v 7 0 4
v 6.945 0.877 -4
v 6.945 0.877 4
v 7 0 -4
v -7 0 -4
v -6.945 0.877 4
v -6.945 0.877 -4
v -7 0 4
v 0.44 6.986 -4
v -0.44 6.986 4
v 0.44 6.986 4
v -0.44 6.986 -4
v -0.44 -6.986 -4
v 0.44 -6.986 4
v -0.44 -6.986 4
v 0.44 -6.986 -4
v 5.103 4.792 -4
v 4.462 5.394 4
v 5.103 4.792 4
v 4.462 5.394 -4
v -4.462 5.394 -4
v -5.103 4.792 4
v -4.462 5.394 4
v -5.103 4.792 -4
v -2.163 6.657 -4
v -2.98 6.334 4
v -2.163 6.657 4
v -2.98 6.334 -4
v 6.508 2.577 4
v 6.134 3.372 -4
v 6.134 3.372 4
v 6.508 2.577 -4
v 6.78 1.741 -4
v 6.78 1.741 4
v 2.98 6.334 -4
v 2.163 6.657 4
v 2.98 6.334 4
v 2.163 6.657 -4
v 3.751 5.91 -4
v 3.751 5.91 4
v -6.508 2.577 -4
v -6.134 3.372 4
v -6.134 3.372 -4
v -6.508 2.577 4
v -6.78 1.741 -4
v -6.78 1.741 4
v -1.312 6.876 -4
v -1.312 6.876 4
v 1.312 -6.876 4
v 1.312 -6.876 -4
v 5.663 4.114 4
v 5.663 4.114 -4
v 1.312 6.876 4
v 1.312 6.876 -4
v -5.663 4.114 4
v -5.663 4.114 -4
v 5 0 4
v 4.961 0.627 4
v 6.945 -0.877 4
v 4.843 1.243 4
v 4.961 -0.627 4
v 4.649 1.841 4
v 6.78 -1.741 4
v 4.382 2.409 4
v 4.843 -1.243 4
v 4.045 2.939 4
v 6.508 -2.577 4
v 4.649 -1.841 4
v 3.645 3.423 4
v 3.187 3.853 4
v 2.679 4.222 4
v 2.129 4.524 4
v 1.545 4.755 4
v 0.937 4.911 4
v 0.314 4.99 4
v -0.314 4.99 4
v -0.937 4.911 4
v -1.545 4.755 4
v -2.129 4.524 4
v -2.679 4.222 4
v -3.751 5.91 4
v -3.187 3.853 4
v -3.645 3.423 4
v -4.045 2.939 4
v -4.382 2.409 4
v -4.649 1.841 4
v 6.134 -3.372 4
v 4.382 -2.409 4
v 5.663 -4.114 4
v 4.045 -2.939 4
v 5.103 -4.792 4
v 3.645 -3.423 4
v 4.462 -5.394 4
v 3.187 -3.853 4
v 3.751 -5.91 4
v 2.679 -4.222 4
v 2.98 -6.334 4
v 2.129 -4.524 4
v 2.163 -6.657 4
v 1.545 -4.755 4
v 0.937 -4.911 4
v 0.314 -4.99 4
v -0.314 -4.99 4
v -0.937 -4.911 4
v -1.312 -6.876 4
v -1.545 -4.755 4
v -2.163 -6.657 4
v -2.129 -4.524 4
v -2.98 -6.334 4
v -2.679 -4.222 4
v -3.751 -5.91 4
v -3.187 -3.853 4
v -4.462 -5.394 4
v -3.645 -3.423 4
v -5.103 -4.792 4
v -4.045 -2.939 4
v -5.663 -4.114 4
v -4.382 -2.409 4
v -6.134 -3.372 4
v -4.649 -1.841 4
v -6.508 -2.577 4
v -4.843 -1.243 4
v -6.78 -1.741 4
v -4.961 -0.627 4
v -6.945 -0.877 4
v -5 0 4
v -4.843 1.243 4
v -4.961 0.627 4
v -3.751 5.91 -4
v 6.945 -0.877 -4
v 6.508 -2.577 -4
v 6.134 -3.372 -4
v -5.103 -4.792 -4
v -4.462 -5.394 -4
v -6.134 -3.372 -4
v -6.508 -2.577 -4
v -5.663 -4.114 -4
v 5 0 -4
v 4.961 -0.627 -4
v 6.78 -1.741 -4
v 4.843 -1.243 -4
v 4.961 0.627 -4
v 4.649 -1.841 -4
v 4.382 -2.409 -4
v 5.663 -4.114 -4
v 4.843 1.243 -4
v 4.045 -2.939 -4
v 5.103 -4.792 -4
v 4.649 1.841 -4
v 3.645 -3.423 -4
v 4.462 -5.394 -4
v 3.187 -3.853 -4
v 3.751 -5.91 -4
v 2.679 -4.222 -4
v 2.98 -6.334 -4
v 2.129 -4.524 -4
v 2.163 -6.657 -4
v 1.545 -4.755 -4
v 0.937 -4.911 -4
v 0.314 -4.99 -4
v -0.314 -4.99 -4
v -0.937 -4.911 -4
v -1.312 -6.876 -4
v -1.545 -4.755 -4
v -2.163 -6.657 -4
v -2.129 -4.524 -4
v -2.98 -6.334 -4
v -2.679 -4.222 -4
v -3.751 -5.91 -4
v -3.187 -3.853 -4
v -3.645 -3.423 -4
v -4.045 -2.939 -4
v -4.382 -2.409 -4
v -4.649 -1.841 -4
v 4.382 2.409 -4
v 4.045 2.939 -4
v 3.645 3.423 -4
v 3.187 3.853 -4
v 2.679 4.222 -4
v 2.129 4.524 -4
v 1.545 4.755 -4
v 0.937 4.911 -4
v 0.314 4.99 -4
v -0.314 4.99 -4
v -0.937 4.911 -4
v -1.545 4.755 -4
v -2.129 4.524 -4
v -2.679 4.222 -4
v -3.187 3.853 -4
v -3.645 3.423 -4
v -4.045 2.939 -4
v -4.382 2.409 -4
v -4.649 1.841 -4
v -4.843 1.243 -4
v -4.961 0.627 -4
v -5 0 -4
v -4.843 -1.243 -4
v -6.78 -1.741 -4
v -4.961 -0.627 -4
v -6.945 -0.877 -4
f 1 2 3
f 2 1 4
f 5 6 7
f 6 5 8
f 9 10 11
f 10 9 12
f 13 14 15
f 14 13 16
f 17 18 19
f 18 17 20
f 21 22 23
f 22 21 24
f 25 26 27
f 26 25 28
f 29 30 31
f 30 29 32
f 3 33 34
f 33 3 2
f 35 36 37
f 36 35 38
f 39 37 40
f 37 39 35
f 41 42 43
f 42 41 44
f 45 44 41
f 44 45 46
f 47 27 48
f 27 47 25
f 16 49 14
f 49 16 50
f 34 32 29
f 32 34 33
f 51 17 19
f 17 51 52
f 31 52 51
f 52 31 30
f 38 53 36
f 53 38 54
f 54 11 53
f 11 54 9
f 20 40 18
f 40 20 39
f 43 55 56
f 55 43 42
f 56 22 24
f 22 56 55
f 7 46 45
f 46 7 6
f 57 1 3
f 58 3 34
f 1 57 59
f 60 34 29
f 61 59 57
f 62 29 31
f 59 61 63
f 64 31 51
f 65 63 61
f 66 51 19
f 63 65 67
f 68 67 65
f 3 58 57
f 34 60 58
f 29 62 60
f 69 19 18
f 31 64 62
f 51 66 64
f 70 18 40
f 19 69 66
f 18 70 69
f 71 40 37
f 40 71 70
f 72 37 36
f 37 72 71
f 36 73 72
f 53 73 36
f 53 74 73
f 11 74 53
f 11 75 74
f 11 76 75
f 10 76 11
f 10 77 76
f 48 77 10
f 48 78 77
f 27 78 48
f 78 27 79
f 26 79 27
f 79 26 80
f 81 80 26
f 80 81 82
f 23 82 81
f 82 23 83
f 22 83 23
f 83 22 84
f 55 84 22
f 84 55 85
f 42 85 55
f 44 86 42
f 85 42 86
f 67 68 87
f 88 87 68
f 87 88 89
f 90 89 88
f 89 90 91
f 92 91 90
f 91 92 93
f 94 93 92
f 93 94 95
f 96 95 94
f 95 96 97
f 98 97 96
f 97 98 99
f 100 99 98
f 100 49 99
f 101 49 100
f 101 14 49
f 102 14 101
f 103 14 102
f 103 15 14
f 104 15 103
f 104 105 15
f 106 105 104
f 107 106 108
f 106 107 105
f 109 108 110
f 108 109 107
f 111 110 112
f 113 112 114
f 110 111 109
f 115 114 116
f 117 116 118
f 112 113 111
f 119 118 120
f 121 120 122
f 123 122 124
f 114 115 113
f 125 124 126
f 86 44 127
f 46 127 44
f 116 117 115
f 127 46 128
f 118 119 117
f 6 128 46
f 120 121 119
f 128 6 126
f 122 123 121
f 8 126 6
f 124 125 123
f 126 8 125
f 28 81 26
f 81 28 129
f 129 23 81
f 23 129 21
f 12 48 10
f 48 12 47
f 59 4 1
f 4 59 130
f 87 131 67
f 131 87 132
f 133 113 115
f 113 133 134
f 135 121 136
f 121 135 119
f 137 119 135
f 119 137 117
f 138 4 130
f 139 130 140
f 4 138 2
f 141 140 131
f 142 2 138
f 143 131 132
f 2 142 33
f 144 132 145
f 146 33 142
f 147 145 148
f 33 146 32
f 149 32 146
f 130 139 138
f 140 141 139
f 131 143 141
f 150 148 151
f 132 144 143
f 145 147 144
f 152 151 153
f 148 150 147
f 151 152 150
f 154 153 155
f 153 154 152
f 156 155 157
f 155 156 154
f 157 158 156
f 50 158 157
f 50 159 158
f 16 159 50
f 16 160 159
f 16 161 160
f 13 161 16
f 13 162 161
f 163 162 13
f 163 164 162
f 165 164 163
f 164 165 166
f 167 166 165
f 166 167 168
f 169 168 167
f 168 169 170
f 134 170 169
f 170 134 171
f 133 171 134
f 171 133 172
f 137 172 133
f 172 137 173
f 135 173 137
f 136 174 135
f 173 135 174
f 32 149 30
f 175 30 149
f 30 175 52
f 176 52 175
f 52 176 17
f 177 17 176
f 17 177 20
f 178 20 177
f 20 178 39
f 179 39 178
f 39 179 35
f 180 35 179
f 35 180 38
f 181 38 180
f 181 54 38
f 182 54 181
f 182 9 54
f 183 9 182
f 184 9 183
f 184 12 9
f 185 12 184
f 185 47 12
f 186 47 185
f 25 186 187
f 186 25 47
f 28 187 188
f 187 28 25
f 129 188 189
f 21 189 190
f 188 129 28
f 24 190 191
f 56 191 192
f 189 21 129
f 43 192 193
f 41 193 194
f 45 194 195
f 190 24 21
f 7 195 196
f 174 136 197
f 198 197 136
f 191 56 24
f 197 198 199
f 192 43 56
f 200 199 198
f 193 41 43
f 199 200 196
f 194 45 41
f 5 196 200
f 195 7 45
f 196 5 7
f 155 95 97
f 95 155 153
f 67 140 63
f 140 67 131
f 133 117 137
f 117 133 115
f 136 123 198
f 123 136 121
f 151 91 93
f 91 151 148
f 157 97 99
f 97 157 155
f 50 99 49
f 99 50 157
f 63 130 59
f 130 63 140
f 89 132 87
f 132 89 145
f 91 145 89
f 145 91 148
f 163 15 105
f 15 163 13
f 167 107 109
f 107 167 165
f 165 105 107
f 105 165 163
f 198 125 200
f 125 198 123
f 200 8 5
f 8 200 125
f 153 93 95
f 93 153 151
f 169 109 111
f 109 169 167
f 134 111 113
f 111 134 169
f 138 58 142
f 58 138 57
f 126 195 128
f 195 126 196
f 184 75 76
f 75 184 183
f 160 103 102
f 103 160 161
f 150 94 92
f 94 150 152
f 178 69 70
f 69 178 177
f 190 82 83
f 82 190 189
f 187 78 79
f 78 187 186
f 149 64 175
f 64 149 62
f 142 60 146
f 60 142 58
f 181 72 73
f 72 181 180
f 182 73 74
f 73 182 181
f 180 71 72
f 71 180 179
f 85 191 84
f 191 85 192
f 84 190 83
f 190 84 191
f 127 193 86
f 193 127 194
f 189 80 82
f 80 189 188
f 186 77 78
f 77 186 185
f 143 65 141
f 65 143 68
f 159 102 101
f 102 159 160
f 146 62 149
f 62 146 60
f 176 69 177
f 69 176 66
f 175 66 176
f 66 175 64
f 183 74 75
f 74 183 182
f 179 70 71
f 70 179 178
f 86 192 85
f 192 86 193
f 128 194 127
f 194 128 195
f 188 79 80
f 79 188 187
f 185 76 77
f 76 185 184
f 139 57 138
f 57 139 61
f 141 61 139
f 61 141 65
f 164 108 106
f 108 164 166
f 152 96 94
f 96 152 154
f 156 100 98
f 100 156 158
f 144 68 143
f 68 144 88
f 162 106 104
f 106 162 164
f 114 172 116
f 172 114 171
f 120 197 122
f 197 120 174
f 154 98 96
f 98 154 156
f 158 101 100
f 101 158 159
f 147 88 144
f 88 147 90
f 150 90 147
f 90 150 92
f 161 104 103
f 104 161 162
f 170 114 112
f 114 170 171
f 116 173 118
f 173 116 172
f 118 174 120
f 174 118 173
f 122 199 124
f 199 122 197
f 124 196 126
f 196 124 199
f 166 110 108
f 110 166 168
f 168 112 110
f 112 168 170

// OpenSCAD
$fn = 50;


difference() {
	union() {
		translate(v = [0, 0, -4.0000000000]) {
			cylinder(h = 8, r = 7.0000000000);
		}
	}
	union() {
		translate(v = [0, 0, -100.0000000000]) {
			cylinder(h = 200, r = 5);
		}
	}
}
